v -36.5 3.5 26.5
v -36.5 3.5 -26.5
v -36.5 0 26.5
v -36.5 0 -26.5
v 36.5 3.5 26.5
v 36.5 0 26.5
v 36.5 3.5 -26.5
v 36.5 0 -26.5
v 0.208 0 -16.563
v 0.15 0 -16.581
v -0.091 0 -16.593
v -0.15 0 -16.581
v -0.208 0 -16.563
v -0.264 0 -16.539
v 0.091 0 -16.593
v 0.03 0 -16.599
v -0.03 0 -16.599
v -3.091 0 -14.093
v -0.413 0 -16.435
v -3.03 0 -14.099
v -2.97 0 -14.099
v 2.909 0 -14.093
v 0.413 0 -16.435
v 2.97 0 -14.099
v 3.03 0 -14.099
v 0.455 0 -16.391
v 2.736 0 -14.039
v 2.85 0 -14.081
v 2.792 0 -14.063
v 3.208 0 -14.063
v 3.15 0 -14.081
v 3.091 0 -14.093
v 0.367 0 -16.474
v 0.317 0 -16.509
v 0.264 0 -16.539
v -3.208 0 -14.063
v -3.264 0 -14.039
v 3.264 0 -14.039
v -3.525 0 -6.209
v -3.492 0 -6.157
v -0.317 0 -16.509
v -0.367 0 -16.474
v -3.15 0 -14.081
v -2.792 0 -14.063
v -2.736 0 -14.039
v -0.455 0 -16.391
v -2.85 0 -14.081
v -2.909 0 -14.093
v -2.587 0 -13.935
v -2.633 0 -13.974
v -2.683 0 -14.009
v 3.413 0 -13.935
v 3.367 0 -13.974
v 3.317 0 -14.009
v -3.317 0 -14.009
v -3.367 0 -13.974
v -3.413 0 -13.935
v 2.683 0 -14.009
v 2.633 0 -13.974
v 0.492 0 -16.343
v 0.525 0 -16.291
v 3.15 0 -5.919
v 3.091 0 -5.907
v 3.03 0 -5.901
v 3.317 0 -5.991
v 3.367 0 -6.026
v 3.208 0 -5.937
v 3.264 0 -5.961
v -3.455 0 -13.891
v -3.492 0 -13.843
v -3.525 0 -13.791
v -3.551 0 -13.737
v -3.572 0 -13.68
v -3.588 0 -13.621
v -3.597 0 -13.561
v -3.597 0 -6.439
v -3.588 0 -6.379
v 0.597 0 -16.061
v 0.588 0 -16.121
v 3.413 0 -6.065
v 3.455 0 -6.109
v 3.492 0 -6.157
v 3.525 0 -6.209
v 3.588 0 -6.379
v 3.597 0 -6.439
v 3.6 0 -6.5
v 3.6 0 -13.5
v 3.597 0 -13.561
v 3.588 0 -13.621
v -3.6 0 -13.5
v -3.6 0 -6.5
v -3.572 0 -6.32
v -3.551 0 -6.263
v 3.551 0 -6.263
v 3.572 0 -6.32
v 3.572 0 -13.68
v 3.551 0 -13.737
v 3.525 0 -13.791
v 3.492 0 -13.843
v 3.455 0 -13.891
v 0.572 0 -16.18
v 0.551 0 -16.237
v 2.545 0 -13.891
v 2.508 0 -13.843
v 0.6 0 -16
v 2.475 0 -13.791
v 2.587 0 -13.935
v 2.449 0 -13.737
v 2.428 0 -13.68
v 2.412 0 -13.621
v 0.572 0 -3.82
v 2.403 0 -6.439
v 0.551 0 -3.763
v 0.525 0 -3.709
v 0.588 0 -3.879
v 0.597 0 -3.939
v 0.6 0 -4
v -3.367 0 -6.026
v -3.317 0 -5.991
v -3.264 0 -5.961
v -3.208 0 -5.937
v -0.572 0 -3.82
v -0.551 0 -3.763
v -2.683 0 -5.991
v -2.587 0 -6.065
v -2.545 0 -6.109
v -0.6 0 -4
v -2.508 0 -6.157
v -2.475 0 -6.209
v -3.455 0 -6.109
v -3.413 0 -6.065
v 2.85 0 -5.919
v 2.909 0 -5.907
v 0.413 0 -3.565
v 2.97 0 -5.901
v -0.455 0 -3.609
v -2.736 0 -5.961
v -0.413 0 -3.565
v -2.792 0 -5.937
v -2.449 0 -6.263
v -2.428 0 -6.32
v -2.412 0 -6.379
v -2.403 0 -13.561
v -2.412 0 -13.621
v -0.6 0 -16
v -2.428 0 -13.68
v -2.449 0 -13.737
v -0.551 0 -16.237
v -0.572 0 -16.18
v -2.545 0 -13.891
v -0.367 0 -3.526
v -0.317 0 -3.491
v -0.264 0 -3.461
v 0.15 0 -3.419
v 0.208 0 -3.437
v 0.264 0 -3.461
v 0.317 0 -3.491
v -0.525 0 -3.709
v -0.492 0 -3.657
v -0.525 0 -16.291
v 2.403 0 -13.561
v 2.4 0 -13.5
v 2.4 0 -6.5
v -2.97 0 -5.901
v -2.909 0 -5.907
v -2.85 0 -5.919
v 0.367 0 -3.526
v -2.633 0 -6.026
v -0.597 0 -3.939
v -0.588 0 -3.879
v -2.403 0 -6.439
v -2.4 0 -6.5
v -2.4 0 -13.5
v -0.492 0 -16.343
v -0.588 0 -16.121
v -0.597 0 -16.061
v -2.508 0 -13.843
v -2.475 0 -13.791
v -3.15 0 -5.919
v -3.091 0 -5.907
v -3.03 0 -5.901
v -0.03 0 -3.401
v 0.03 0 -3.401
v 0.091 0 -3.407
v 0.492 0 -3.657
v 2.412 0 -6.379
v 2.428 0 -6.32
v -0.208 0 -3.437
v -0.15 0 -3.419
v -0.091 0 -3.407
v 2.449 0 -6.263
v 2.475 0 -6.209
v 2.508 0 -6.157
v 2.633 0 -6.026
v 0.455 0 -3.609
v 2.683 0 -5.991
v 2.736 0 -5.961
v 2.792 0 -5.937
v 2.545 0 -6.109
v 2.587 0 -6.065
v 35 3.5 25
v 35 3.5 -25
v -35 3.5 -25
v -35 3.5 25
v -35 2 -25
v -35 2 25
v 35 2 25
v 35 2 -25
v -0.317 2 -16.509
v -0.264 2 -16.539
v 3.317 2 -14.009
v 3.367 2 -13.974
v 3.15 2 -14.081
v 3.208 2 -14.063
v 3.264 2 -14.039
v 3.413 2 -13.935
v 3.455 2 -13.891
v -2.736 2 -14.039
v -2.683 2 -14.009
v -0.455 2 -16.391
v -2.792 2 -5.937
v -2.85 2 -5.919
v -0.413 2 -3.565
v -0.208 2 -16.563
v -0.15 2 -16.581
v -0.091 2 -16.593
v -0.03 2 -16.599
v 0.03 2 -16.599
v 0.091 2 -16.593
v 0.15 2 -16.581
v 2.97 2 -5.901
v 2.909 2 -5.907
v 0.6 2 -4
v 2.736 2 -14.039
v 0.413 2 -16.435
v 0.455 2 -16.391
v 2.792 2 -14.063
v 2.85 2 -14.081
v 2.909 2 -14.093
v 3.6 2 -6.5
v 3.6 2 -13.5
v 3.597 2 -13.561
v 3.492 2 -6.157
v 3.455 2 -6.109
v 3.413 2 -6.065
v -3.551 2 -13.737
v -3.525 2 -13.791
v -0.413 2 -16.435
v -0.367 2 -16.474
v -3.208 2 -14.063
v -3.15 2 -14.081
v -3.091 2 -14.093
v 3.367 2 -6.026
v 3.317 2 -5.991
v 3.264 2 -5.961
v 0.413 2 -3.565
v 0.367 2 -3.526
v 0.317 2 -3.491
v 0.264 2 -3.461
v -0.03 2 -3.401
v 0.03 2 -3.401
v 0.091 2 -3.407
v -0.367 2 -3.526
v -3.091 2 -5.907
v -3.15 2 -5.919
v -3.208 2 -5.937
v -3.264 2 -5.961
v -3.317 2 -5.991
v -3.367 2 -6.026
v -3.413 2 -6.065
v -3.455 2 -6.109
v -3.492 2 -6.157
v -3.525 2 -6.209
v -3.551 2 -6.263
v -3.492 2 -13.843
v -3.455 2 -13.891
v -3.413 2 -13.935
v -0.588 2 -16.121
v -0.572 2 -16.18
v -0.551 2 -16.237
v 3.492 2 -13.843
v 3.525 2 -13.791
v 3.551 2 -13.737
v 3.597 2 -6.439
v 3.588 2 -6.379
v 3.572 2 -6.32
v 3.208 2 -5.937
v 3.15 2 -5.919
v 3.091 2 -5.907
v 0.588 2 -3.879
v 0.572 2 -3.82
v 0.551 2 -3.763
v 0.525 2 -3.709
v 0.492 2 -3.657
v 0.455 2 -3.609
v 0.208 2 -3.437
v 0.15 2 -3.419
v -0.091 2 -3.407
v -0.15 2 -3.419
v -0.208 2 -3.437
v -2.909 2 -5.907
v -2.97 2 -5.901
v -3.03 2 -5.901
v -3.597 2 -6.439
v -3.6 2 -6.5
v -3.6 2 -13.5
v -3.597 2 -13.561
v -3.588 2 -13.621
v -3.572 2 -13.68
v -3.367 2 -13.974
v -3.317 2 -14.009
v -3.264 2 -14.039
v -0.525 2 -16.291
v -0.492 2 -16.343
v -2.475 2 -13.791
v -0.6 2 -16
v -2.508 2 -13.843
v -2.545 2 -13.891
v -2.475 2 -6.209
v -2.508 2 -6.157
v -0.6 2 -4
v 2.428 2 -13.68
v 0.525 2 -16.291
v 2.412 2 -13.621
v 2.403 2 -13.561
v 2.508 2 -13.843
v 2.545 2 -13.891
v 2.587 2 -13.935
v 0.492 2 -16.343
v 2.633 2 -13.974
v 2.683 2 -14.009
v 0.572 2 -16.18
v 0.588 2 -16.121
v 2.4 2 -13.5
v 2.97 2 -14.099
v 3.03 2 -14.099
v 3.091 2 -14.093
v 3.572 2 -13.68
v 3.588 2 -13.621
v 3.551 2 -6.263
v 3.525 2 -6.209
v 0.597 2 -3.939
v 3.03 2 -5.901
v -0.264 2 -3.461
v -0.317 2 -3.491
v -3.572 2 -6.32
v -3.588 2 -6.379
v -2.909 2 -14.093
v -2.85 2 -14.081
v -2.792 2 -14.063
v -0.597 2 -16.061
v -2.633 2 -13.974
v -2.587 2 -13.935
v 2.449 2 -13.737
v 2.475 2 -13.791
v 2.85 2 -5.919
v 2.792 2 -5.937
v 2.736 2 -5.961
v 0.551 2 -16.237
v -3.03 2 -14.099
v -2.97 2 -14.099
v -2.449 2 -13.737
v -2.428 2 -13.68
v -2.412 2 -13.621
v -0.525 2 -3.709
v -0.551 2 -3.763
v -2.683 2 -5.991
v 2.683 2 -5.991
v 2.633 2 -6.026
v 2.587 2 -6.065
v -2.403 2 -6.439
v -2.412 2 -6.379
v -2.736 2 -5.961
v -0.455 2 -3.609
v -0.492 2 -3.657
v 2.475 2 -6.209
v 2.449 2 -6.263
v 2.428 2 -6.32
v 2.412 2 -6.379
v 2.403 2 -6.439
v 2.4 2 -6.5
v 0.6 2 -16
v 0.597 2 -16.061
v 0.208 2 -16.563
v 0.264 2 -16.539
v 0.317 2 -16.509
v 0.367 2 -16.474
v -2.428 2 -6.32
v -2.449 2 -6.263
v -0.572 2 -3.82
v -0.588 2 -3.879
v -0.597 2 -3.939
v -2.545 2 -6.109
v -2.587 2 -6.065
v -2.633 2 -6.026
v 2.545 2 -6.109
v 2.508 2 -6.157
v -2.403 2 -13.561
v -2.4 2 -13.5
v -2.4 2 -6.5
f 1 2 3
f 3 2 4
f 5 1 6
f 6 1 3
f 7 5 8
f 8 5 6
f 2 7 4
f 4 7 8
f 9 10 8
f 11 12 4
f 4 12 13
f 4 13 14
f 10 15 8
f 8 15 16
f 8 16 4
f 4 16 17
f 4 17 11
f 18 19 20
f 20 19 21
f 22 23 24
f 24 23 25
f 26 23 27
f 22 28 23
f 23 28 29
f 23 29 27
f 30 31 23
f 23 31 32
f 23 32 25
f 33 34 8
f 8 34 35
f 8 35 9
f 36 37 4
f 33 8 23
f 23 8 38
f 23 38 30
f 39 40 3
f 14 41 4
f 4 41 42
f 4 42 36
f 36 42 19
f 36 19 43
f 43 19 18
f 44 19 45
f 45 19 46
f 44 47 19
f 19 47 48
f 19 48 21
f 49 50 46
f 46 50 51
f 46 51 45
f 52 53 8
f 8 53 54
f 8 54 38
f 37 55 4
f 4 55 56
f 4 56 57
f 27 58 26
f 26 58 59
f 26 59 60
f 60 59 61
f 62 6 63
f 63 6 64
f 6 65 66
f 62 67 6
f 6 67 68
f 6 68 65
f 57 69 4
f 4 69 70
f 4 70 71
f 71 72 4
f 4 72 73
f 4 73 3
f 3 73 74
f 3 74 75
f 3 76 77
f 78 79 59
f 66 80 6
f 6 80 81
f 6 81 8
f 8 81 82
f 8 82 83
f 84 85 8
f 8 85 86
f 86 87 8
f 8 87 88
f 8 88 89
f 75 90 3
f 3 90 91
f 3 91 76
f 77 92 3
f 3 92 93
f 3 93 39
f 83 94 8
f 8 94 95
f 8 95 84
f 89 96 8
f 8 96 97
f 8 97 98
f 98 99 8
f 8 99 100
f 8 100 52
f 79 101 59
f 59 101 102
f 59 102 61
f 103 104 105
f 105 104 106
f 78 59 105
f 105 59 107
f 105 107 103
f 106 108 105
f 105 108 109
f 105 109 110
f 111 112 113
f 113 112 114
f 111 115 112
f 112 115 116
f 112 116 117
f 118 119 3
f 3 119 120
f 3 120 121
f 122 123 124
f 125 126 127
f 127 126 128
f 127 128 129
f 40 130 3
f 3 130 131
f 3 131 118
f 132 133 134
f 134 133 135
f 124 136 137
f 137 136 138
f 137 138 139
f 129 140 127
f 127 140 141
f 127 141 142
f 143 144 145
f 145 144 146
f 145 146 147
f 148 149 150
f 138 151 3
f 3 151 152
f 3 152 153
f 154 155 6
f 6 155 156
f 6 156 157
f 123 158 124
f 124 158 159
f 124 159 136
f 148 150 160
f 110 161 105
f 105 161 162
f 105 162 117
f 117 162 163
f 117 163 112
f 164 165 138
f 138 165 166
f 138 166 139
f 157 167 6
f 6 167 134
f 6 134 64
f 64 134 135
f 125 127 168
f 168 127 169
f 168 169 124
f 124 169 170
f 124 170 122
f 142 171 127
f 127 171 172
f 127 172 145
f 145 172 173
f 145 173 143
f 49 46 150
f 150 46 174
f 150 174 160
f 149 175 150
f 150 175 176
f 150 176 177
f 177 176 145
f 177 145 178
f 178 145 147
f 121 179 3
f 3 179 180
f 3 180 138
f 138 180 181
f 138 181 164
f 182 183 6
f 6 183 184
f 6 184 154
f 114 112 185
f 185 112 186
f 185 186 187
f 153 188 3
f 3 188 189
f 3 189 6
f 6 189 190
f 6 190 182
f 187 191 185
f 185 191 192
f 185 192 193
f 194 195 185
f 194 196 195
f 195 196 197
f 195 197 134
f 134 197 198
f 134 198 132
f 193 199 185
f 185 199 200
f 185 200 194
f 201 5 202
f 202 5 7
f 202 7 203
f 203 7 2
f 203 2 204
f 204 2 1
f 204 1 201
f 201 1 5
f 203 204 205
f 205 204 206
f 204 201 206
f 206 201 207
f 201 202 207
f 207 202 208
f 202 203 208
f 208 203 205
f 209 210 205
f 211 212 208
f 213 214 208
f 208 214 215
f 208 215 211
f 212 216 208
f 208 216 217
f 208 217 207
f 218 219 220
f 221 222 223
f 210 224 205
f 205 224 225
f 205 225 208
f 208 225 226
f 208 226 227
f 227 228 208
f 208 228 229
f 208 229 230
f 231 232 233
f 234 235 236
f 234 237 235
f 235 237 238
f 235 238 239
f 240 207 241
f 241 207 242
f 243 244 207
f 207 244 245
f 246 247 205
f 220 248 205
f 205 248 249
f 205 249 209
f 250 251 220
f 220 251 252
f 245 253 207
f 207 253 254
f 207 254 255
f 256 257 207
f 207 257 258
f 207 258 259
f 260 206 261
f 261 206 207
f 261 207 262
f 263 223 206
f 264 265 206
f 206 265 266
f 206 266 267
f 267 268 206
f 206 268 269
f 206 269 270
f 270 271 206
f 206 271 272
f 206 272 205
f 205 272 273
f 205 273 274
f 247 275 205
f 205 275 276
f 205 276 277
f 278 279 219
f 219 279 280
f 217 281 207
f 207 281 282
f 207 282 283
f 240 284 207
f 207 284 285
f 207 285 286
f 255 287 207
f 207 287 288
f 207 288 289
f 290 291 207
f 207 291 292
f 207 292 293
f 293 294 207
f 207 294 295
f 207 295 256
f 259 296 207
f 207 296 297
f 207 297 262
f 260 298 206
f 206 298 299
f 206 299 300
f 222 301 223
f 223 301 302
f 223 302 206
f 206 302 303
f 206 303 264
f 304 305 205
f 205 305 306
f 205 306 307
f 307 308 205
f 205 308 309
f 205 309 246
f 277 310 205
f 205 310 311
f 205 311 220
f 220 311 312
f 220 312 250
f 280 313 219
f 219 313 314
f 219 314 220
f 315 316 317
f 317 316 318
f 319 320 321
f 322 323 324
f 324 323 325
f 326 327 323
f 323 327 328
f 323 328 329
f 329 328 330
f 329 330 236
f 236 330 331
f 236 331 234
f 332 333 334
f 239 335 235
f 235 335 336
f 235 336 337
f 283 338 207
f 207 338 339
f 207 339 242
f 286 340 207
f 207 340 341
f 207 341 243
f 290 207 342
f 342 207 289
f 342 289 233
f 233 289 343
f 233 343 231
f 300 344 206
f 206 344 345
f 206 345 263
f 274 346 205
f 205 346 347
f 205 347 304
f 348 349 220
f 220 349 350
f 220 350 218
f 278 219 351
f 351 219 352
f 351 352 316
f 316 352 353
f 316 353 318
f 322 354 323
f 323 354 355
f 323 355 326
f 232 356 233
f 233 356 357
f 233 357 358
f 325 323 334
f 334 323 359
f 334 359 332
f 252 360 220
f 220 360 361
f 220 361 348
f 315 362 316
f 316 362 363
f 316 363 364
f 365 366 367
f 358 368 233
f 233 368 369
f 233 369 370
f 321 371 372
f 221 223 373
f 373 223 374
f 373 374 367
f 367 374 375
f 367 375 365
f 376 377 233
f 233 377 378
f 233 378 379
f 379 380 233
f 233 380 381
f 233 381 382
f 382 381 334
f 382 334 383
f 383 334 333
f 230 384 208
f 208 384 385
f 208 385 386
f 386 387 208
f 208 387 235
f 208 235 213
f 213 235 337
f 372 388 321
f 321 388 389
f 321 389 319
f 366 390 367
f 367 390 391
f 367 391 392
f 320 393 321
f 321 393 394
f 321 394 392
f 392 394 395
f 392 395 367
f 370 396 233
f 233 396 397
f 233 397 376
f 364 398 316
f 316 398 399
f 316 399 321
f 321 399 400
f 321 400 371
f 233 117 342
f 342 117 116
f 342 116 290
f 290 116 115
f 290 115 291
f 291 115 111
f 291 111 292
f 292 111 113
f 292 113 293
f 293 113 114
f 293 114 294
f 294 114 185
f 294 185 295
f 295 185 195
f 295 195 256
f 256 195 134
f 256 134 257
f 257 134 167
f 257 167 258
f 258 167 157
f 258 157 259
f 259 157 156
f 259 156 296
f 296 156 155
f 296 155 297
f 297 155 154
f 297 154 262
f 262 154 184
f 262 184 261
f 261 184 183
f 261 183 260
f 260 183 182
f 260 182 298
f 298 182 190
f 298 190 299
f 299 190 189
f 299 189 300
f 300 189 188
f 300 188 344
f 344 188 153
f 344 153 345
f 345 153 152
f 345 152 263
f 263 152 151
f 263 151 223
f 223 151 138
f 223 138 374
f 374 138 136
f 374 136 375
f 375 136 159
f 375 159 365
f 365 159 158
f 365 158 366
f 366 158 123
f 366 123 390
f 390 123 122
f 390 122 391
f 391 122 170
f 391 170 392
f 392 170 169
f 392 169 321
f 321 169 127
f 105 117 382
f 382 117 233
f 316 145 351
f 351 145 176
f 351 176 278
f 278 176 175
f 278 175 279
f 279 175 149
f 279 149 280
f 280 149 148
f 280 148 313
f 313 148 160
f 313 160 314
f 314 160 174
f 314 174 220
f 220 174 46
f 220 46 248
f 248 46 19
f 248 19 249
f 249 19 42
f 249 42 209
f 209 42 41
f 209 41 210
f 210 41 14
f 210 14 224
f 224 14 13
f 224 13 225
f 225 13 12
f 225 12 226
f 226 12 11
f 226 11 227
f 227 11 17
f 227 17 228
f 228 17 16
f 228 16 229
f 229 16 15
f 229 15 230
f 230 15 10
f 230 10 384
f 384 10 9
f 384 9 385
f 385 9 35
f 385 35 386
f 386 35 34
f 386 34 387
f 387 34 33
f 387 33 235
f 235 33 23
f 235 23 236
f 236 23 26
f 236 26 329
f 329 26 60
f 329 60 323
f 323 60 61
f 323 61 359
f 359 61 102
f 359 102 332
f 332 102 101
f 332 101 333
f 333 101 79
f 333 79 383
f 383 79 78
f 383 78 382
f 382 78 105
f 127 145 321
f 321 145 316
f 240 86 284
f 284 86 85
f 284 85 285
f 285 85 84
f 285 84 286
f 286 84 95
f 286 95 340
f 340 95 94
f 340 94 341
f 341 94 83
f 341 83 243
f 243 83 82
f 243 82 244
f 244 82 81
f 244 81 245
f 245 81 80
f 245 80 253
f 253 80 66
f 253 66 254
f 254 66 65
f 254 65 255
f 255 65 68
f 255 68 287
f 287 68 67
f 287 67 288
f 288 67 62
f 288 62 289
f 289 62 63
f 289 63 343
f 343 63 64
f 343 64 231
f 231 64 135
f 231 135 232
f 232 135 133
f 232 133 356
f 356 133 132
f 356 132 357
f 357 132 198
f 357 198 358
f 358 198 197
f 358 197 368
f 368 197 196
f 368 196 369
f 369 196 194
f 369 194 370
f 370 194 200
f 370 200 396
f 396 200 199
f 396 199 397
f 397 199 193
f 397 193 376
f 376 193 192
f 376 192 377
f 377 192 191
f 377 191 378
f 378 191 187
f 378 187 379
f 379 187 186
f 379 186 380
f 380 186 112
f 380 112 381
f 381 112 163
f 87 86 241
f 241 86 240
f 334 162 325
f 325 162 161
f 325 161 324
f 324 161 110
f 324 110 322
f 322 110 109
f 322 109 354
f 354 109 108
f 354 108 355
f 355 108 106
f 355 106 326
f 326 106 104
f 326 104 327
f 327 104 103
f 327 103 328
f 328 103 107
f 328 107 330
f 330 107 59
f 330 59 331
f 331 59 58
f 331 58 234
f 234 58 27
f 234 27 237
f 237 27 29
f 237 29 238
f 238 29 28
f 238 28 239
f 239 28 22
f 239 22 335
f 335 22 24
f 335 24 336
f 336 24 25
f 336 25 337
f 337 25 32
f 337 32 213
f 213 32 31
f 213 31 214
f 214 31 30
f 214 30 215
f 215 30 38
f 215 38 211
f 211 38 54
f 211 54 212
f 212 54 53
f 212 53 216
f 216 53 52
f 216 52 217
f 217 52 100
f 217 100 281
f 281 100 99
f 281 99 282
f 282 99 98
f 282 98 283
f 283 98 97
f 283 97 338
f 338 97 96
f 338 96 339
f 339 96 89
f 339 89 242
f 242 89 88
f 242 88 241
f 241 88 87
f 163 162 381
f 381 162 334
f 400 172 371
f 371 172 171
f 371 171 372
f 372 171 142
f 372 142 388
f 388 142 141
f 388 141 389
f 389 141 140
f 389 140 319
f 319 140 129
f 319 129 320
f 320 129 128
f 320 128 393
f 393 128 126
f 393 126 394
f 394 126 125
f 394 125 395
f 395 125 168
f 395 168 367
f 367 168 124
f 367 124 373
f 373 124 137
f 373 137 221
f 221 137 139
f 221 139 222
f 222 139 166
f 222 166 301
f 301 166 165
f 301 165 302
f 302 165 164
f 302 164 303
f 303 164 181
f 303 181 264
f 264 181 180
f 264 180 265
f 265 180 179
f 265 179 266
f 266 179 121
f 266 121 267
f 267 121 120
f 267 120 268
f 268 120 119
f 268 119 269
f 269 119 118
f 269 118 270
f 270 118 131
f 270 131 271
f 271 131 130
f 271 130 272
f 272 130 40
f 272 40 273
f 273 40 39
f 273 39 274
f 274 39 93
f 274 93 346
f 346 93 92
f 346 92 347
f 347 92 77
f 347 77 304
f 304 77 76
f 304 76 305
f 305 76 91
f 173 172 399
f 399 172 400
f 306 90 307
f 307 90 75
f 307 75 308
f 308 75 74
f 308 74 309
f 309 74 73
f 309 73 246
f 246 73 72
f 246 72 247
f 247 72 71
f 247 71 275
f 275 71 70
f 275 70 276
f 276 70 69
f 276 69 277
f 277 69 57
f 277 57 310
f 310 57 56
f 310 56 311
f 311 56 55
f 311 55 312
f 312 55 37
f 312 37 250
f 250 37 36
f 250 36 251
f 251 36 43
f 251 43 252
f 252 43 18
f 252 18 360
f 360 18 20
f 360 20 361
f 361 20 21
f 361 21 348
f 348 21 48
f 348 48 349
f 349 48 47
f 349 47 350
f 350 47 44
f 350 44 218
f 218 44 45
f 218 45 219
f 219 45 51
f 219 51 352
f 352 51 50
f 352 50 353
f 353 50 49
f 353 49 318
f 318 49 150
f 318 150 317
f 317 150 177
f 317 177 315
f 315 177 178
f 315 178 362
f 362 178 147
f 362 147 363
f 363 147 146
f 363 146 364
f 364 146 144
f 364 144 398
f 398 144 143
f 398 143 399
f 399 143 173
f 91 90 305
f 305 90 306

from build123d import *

# Parameters (mm, degrees)
SKETCH1_W           = 73
SKETCH1_H           = 53
BOSS_EXTRUDE1_DEPTH = 2
SKETCH2_W           = 73
SKETCH2_H           = 53
SKETCH2_W_2         = 70
SKETCH2_H_2         = 50
BOSS_EXTRUDE2_DEPTH = 1.5
CUT_EXTRUDE1_DEPTH  = 4.5


with BuildPart() as part:
    # Sketch1 → Boss-Extrude1 (new body)
    with BuildSketch(Plane(origin=(0, 0, 0), x_dir=(1, 0, 0), z_dir=(0, 1, 0))):
        Rectangle(SKETCH1_W, SKETCH1_H)
    extrude(amount=BOSS_EXTRUDE1_DEPTH)

    # Sketch2 → Boss-Extrude2 (add)
    with BuildSketch(Plane(origin=(0, 2, 0), x_dir=(1, 0, 0), z_dir=(0, 1, 0))):
        Rectangle(SKETCH2_W, SKETCH2_H)
        Rectangle(SKETCH2_W_2, SKETCH2_H_2, mode=Mode.SUBTRACT)
    extrude(amount=BOSS_EXTRUDE2_DEPTH)

    # Sketch3 → Cut-Extrude1 (cut, through all)
    with BuildSketch(Plane.XZ):
        with BuildLine():
            Line((0.6, -4), (0.6, -16))
            ThreePointArc((0.6, -16), (0, -16.6), (-0.6, -16))
            Line((-0.6, -16), (-0.6, -4))
            ThreePointArc((-0.6, -4), (0, -3.4), (0.6, -4))
        make_face()
        with BuildLine():
            Line((3.6, -6.5), (3.6, -13.5))
            ThreePointArc((3.6, -13.5), (3, -14.1), (2.4, -13.5))
            Line((2.4, -13.5), (2.4, -6.5))
            ThreePointArc((2.4, -6.5), (3, -5.9), (3.6, -6.5))
        make_face()
        with BuildLine():
            Line((-2.4, -6.5), (-2.4, -13.5))
            ThreePointArc((-2.4, -13.5), (-3, -14.1), (-3.6, -13.5))
            Line((-3.6, -13.5), (-3.6, -6.5))
            ThreePointArc((-3.6, -6.5), (-3, -5.9), (-2.4, -6.5))
        make_face()
    extrude(amount=-CUT_EXTRUDE1_DEPTH, mode=Mode.SUBTRACT)


solid = part.part
